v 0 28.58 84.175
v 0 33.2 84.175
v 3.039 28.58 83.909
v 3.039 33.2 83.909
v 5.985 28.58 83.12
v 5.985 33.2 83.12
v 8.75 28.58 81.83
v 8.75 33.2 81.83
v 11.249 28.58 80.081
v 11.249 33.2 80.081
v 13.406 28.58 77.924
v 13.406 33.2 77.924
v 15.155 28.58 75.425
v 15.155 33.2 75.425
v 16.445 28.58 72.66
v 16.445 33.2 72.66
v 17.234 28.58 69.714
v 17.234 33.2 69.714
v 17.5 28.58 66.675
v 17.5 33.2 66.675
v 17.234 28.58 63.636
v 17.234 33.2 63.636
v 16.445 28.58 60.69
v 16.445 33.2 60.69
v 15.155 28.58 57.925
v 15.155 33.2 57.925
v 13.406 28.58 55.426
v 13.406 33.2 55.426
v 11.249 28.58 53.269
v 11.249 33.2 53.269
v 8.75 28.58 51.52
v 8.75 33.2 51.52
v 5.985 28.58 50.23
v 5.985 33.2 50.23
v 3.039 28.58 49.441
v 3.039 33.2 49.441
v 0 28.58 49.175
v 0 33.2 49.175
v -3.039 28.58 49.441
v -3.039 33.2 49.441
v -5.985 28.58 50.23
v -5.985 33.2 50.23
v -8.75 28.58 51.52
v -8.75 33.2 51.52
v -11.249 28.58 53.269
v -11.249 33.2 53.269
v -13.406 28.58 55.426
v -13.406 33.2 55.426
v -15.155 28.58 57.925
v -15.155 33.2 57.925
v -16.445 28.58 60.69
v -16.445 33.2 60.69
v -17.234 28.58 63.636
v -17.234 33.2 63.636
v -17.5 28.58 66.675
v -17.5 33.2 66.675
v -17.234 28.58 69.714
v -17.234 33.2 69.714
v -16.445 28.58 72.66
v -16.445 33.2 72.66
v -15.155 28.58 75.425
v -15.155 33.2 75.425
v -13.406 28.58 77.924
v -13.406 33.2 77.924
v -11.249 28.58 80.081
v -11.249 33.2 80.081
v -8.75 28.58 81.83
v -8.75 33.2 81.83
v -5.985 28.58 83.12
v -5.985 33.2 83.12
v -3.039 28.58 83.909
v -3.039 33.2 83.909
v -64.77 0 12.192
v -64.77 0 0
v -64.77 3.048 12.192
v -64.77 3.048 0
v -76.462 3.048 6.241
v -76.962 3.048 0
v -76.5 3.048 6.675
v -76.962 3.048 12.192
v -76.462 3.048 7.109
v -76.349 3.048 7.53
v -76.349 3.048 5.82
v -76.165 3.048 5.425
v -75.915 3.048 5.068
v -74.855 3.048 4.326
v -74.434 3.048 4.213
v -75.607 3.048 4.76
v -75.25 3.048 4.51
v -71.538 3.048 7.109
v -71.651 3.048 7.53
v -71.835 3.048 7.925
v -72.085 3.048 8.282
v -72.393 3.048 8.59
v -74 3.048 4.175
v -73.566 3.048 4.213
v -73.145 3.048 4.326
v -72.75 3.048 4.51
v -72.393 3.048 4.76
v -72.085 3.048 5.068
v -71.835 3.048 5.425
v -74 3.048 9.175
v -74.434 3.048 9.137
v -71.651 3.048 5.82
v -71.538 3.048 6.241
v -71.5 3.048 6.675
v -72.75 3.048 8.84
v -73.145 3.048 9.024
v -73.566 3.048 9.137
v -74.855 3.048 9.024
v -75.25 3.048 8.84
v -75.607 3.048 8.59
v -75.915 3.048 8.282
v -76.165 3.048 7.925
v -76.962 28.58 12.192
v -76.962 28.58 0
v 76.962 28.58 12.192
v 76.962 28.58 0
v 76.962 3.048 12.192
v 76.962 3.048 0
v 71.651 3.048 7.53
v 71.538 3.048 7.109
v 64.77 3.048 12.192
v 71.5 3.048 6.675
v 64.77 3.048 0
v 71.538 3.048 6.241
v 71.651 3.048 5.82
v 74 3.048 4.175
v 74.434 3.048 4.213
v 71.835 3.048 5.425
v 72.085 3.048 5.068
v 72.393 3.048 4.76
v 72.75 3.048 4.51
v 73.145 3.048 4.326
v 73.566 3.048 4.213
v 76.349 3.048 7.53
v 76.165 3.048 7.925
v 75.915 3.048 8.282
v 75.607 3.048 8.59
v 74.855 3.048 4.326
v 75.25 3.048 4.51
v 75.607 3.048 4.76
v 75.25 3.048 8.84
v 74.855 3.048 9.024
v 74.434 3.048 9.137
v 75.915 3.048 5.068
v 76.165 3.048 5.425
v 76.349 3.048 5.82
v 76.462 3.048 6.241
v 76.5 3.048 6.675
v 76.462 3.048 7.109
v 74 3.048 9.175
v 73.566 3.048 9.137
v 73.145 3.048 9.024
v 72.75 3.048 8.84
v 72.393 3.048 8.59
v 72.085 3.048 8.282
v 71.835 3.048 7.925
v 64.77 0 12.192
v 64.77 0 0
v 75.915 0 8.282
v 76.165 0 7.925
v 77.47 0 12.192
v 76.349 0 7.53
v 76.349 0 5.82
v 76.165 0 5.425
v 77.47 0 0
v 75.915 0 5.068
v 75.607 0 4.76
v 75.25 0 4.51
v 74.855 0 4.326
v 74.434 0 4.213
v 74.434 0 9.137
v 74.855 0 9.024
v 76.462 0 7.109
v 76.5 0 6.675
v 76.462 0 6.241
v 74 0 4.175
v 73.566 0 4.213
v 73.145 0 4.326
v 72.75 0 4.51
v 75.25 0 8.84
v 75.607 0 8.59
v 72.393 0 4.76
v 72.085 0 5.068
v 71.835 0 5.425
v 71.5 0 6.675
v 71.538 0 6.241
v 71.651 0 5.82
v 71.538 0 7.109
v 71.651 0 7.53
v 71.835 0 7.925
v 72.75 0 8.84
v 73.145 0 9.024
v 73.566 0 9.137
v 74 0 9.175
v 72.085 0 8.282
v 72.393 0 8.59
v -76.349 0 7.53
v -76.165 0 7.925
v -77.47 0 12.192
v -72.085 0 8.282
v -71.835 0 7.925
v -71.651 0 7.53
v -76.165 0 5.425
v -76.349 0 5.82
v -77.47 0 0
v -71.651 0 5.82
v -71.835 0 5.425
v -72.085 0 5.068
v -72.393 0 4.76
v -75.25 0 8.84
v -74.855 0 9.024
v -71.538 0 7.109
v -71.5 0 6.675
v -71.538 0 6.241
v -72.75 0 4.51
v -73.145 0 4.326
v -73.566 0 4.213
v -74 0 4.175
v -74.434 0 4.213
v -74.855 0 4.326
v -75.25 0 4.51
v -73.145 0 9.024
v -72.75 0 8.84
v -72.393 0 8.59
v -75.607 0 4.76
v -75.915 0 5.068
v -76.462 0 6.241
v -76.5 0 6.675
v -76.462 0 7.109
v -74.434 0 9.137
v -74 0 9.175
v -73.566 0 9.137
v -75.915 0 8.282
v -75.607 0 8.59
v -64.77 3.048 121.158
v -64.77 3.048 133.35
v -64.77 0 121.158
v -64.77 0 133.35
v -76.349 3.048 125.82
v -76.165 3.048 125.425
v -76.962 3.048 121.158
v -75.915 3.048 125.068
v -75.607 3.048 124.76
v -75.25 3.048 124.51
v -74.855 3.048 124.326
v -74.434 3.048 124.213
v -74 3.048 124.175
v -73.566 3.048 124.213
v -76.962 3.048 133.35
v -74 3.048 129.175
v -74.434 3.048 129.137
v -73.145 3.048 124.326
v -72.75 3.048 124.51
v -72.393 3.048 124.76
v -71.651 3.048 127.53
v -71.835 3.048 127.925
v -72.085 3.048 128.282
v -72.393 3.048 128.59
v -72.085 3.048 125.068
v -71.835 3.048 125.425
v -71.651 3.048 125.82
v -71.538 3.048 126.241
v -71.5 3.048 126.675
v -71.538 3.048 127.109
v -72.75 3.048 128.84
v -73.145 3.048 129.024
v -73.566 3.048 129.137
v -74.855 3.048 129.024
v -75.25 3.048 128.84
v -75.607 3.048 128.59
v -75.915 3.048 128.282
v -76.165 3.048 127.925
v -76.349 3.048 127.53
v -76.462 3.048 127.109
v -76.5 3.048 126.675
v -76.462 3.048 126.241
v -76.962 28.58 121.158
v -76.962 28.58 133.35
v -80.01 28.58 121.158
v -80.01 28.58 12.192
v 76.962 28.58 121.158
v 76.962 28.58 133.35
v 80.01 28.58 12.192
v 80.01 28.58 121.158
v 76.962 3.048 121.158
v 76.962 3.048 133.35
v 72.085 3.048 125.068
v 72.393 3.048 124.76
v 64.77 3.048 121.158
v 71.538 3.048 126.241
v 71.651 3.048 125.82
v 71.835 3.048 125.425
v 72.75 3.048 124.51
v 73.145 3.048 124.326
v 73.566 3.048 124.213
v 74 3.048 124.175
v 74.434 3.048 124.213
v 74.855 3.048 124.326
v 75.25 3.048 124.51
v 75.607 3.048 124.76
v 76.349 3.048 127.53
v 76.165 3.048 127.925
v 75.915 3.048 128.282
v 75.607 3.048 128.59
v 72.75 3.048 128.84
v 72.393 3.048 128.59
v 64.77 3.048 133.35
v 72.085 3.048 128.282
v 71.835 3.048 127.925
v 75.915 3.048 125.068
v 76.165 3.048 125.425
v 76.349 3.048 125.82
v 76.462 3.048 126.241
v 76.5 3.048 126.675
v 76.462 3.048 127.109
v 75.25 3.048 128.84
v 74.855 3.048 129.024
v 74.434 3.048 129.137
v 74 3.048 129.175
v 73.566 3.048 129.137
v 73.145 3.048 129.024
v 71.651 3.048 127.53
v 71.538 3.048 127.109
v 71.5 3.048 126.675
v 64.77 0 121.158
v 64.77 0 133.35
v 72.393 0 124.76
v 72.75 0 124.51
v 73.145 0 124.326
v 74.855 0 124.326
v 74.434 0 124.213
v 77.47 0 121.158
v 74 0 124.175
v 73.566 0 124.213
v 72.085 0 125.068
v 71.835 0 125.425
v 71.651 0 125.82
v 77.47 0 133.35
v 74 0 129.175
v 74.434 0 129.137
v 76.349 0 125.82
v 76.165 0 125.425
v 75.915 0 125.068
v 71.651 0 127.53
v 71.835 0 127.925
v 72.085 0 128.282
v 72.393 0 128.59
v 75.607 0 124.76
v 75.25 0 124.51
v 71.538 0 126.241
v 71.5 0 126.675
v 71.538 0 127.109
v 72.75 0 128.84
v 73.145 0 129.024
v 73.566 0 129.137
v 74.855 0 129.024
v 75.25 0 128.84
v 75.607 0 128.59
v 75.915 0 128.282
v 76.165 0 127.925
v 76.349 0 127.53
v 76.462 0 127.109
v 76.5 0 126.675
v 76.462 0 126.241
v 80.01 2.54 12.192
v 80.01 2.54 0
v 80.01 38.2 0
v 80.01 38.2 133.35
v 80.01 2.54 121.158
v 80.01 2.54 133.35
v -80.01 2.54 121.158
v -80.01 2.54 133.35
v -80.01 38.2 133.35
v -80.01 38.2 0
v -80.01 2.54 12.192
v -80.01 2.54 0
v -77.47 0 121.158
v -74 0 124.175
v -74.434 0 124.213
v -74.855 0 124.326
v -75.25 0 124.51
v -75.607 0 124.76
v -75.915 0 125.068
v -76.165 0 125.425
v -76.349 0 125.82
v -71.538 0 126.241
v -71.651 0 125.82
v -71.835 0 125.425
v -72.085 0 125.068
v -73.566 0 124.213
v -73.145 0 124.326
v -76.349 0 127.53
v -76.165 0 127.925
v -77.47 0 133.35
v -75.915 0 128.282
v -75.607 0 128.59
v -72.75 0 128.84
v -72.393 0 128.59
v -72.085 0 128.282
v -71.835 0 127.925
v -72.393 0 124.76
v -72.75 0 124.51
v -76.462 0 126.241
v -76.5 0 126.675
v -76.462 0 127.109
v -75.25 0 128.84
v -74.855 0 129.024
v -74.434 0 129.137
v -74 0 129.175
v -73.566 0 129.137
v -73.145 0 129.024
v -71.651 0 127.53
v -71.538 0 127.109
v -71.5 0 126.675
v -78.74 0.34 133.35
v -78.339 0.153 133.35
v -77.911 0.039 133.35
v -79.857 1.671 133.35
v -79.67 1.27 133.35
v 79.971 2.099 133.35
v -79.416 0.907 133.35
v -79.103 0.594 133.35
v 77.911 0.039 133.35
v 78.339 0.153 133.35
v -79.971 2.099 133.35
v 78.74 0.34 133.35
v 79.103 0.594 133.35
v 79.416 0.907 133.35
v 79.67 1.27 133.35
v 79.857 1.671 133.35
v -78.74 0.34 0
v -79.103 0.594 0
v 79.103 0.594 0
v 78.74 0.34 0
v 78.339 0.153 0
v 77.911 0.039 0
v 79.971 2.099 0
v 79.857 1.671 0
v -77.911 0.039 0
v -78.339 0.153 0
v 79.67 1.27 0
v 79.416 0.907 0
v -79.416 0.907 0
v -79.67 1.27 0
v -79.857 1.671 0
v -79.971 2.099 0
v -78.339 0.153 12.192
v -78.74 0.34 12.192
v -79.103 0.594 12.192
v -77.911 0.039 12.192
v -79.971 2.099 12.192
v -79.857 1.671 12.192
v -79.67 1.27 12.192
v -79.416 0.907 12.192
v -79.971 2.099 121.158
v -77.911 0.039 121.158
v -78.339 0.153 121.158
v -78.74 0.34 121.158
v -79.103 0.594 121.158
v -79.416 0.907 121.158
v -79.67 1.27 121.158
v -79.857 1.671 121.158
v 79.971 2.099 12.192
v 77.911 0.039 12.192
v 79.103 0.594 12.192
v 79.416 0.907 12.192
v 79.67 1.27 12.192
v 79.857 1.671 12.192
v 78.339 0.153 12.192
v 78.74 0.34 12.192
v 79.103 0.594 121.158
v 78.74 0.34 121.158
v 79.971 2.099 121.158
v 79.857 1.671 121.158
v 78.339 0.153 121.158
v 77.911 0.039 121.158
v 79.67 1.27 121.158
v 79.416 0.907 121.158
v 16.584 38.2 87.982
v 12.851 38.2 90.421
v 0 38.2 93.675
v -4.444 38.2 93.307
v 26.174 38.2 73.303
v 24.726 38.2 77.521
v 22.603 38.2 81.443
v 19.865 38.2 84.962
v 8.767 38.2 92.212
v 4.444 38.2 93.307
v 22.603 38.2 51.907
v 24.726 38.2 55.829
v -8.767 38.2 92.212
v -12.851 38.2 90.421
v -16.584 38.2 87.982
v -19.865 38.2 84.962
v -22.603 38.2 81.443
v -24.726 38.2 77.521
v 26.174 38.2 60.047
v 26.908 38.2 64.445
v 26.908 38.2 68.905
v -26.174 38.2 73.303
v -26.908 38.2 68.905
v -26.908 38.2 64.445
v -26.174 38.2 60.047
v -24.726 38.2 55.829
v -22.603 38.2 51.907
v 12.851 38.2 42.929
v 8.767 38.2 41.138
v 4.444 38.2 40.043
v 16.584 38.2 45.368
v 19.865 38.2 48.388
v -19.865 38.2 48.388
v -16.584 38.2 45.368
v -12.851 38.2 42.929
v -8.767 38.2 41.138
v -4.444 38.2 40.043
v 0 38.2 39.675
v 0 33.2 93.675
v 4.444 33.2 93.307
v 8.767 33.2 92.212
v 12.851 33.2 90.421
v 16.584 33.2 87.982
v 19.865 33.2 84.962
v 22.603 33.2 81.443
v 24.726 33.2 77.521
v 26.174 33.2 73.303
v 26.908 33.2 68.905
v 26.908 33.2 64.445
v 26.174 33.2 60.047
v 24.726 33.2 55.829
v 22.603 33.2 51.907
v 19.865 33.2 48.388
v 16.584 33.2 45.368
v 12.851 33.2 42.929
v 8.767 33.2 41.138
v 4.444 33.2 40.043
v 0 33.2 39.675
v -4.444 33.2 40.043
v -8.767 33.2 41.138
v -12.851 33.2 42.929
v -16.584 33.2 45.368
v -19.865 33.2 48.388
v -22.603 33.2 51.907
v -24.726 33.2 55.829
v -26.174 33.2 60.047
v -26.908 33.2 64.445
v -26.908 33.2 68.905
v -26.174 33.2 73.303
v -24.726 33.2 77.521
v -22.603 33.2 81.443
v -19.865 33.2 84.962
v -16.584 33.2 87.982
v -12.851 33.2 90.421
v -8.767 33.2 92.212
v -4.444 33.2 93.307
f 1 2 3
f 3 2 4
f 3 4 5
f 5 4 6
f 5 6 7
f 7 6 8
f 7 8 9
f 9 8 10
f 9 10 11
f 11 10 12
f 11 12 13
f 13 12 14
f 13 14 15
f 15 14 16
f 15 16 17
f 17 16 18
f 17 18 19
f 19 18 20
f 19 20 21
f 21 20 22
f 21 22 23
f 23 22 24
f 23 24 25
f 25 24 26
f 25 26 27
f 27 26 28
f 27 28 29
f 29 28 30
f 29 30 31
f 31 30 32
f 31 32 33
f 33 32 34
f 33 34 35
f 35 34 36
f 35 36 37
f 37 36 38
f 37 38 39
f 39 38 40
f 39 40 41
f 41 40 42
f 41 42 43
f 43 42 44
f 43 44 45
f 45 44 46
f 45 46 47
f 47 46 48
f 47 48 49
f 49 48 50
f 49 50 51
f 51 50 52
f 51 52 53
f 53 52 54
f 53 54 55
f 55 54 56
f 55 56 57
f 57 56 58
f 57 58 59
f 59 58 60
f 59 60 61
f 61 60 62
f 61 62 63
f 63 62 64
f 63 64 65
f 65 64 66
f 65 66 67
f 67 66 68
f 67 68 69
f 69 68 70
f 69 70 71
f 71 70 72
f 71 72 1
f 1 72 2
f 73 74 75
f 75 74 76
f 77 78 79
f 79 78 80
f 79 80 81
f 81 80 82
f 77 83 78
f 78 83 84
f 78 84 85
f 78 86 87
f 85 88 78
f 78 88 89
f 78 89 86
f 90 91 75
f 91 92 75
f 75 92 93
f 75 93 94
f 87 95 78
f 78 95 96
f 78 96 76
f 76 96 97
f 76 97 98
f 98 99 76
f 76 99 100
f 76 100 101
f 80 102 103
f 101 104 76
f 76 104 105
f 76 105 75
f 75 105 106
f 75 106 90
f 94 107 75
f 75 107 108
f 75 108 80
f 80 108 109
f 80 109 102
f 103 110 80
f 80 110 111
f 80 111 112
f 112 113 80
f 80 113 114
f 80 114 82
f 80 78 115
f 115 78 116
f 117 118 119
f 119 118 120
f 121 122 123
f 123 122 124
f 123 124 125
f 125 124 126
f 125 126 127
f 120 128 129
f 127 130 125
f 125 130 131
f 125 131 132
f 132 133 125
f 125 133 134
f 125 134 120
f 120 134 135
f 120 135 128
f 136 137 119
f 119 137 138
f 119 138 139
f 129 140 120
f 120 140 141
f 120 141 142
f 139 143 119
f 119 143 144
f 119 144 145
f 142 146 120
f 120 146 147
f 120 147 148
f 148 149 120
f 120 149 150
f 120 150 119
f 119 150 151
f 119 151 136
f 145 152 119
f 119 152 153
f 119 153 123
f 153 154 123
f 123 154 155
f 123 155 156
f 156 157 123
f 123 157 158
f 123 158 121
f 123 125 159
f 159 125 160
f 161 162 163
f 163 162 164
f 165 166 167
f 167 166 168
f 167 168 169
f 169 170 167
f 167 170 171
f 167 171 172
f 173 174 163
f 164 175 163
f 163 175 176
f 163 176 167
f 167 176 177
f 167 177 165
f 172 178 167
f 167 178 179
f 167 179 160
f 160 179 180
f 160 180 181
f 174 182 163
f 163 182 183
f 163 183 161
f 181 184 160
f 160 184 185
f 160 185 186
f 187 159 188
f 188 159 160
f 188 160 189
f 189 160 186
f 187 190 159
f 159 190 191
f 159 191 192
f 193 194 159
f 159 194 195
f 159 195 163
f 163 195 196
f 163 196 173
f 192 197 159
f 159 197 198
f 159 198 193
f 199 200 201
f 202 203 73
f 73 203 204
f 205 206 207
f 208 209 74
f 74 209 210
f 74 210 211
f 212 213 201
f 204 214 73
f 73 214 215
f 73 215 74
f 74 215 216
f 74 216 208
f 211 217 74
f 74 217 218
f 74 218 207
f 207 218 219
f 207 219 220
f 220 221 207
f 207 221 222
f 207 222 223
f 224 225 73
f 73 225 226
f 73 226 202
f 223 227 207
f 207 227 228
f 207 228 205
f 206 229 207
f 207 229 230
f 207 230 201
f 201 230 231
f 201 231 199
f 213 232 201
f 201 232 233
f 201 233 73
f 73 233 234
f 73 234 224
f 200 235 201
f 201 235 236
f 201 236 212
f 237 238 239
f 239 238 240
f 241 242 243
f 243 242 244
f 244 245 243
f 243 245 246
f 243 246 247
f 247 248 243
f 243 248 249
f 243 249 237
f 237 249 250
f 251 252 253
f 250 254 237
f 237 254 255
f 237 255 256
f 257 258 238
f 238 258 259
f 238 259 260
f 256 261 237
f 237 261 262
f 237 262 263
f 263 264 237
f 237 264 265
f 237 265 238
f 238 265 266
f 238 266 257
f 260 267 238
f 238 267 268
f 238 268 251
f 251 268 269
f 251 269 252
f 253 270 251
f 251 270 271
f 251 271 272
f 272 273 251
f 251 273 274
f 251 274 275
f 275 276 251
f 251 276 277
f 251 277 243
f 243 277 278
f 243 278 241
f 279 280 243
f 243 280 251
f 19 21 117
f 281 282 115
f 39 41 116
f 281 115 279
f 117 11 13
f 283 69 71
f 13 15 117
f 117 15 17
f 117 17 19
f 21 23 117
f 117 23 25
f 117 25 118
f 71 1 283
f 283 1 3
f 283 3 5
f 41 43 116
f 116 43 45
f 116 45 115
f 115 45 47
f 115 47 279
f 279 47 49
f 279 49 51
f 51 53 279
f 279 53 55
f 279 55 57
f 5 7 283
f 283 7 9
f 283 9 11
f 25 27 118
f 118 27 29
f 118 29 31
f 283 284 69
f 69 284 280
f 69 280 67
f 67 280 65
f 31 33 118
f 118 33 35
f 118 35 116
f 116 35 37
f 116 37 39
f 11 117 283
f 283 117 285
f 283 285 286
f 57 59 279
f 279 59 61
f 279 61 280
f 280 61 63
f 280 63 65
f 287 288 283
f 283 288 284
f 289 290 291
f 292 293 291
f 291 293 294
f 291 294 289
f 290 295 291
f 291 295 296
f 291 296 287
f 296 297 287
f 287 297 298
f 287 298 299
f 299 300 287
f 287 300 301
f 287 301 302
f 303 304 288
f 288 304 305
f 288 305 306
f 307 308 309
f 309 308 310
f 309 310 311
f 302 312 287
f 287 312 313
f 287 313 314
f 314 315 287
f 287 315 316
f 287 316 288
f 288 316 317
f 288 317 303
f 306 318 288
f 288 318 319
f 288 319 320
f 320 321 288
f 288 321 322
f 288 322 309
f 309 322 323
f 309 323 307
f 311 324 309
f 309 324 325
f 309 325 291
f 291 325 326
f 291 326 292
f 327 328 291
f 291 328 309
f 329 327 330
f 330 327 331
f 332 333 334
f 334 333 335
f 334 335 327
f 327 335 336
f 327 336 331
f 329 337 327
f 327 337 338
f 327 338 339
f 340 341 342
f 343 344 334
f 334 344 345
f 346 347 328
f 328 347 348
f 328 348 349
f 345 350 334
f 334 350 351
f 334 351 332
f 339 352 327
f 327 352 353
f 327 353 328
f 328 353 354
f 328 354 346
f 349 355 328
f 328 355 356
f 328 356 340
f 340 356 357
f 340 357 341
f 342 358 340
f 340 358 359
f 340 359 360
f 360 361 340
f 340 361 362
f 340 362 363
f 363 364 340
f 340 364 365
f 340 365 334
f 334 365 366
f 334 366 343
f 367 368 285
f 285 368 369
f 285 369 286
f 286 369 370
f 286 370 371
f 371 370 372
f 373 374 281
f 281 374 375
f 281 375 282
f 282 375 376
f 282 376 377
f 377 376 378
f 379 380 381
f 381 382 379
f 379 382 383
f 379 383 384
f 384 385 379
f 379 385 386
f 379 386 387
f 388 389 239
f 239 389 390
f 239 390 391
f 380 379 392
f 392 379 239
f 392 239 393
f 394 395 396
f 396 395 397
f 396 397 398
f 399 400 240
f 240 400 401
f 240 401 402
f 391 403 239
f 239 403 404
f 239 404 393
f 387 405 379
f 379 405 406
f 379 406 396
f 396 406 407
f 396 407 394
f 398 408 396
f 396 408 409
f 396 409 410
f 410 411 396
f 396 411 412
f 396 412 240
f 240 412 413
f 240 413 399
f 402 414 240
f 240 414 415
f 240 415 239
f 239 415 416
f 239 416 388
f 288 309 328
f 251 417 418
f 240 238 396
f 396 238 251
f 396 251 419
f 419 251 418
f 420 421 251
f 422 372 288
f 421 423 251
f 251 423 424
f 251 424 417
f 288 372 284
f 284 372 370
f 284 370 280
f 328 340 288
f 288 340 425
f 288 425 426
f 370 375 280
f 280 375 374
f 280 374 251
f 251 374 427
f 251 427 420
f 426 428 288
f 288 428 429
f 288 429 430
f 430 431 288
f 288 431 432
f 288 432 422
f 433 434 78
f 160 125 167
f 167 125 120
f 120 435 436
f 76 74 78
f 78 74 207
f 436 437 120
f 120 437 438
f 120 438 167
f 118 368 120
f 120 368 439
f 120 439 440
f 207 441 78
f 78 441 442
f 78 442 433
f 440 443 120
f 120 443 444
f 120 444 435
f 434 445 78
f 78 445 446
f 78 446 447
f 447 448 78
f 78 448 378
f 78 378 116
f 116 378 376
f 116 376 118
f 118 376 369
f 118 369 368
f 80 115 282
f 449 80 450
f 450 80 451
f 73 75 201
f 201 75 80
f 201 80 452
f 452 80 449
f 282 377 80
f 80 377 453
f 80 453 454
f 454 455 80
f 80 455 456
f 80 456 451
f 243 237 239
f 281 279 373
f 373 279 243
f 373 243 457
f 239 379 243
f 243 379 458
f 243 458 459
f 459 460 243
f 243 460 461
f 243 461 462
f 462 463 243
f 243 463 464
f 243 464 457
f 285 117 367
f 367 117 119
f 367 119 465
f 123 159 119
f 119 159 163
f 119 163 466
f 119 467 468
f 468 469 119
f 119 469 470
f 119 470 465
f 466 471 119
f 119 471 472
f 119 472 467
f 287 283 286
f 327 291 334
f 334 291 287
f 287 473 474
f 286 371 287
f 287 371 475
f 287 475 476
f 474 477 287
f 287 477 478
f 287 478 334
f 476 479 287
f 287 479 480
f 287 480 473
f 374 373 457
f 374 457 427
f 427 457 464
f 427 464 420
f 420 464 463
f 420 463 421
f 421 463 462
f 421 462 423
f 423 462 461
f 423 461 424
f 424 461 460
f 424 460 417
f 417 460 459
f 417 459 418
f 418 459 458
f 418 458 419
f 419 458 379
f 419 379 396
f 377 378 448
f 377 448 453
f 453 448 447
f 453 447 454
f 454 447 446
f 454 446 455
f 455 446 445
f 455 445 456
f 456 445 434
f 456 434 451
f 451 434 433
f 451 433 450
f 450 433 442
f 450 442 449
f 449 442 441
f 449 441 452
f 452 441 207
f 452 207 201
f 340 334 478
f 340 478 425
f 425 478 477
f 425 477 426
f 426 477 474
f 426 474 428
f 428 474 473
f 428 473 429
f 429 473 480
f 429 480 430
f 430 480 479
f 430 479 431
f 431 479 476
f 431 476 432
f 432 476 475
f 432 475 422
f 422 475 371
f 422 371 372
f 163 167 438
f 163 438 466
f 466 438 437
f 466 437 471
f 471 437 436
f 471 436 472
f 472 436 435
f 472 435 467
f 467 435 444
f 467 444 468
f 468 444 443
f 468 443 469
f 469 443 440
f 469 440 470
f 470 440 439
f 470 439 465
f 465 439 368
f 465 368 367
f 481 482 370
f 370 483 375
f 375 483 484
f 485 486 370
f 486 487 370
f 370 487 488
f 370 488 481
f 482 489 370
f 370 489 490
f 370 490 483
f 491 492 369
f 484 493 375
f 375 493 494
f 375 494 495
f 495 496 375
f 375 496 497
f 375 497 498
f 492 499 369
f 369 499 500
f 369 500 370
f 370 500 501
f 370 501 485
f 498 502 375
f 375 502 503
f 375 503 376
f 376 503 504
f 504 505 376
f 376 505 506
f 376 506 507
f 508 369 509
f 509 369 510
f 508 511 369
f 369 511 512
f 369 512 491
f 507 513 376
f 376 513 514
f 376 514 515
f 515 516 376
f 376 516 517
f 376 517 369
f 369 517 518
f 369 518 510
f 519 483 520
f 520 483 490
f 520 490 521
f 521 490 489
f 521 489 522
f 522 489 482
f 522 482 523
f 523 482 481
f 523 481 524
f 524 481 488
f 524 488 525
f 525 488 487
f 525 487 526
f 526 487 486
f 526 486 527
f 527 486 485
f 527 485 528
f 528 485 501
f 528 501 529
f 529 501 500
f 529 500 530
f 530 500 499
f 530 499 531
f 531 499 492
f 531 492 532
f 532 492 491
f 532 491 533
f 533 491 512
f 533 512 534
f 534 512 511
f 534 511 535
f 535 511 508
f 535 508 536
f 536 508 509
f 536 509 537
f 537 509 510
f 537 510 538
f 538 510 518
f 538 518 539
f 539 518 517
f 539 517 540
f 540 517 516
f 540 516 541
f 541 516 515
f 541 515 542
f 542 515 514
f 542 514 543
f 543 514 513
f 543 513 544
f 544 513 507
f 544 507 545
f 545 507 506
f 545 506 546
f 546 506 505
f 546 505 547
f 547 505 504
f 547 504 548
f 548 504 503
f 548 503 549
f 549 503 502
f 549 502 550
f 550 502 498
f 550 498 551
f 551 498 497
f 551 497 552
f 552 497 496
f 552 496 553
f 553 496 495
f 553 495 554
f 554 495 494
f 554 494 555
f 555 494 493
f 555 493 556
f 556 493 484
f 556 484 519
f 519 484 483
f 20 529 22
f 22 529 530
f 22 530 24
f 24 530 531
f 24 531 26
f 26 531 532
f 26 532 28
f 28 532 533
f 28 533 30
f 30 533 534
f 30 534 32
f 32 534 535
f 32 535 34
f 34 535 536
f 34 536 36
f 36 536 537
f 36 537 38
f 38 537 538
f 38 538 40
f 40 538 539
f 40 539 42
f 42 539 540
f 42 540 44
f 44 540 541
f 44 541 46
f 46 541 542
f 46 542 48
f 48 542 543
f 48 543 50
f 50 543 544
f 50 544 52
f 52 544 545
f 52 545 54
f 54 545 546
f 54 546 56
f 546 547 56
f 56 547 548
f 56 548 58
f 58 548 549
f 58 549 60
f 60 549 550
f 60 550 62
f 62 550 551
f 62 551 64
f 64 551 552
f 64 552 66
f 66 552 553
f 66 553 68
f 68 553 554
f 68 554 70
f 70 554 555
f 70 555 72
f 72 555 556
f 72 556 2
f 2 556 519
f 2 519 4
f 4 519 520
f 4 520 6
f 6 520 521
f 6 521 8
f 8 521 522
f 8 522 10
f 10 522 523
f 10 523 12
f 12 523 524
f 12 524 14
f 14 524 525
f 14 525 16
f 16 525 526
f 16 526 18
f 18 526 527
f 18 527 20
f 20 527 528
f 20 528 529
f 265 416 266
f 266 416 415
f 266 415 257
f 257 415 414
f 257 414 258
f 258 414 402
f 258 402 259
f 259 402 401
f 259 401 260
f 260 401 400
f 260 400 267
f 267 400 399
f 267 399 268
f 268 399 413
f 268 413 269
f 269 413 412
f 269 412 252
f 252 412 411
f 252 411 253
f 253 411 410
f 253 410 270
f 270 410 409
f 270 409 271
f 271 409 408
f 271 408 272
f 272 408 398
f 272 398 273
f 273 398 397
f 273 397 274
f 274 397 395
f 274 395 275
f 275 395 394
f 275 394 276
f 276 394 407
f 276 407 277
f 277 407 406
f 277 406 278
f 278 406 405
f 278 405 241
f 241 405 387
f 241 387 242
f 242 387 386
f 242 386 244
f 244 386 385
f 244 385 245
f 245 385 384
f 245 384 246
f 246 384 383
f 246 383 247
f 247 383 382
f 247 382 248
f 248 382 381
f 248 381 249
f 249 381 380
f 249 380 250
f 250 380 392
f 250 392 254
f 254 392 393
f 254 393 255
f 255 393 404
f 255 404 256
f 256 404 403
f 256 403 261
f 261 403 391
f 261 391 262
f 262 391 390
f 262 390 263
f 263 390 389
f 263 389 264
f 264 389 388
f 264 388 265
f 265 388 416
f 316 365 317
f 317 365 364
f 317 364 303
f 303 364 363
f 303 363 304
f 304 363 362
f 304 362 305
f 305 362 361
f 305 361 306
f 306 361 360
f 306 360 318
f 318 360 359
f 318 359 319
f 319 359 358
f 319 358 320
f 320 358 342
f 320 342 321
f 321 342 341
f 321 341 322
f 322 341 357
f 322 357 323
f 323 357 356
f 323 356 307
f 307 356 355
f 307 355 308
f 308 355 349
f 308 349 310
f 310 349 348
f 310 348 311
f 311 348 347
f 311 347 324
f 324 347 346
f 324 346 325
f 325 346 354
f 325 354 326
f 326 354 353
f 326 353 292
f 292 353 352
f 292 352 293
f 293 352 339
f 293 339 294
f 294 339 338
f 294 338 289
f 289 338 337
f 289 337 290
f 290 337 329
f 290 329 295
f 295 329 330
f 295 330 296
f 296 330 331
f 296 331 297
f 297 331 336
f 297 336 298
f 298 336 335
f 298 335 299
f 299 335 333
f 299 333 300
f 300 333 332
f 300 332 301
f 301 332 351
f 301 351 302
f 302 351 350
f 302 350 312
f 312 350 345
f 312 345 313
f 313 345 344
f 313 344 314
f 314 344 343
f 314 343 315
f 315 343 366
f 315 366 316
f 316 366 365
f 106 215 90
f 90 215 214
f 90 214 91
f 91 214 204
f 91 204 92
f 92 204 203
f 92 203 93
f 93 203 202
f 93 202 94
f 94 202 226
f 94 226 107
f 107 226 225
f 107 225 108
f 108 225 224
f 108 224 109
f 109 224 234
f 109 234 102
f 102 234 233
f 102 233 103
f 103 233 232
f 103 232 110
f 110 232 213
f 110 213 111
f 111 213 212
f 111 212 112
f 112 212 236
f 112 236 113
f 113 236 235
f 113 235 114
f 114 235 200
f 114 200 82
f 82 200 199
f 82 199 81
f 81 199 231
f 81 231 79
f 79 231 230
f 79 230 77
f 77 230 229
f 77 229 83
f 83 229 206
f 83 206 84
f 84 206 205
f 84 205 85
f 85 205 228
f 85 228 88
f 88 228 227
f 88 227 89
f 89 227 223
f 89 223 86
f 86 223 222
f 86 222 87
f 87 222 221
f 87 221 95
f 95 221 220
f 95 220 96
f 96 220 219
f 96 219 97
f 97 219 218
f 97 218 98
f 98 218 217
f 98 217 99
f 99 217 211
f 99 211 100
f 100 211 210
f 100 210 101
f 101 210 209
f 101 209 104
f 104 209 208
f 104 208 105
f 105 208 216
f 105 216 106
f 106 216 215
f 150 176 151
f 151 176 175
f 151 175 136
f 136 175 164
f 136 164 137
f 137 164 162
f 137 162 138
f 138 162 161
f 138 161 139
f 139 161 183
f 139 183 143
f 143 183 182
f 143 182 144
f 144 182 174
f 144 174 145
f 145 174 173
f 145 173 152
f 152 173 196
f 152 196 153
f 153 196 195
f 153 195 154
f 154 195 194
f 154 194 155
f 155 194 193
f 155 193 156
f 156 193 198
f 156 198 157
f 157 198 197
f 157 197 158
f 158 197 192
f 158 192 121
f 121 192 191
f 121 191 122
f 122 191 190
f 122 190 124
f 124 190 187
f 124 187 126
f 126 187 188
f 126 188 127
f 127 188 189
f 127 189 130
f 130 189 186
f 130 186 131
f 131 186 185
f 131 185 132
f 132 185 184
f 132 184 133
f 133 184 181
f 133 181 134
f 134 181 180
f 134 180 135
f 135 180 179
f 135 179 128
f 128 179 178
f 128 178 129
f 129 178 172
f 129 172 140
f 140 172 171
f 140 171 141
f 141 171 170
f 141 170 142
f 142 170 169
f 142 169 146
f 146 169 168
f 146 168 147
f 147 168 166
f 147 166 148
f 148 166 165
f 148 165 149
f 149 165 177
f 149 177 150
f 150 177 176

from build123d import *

# Parameters (mm, degrees)
BOSS_EXTRU_1_DEPTH      = 133.35
ESQUISSE3_W             = 108.966
ESQUISSE3_H             = 28.58
ENL_V_MAT_EXTRU_1_DEPTH = 212.421528942
CONG_1_R                = 2.54
SKETCH1_W               = 160.02
SKETCH1_H               = 133.35
BOSS_EXTRUDE1_DEPTH     = 2
SKETCH2_R               = 17.5
CUT_EXTRUDE1_DEPTH      = 161.134514081
SKETCH2_3_R             = 27
SKETCH2_3_R_2           = 17.5
CUT_EXTRUDE2_DEPTH      = 5
SKETCH3_R               = 2.5
CUT_EXTRUDE3_DEPTH      = 5


with BuildPart() as part:
    # Esquisse2 → Boss.-Extru.1 (new body)
    with BuildSketch(Plane.XY):
        Polygon((-64.77, 0), (-80.01, 0), (-80.01, 36.2), (80.01, 36.2), (80.01, 0), (64.77, 0), (64.77, 3.048), (76.962, 3.048), (76.962, 28.58), (-76.962, 28.58), (-76.962, 3.048), (-64.77, 3.048), align=None)
    extrude(amount=BOSS_EXTRU_1_DEPTH)

    # Esquisse3 → Enlèv. mat.-Extru.1 (cut, through all)
    with BuildSketch(Plane.ZY.offset(80.01)):
        with Locations((66.675, 14.29)):
            Rectangle(ESQUISSE3_W, ESQUISSE3_H)
    extrude(amount=-ENL_V_MAT_EXTRU_1_DEPTH, mode=Mode.SUBTRACT)

    # Congé1
    cong_1_edges = [part.edges().sort_by_distance(p)[0] for p in [
        (-80.01, 0, 127.254),
        (-80.01, 0, 6.096),
        (80.01, 0, 127.254),
        (80.01, 0, 6.096),
    ]]
    fillet(cong_1_edges, radius=CONG_1_R)

    # Sketch1 → Boss-Extrude1 (add)
    with BuildSketch(Plane(origin=(0, 36.2, 0), x_dir=(1, 0, 0), z_dir=(0, 1, 0))):
        with Locations((0, -66.675)):
            Rectangle(SKETCH1_W, SKETCH1_H)
    extrude(amount=BOSS_EXTRUDE1_DEPTH)

    # Sketch2 → Cut-Extrude1 (cut, through all)
    with BuildSketch(Plane(origin=(0, 38.2, 0), x_dir=(1, 0, 0), z_dir=(0, 1, 0))):
        with Locations((0, -66.675)):
            Circle(SKETCH2_R)
    extrude(amount=-CUT_EXTRUDE1_DEPTH, mode=Mode.SUBTRACT)

    # Sketch2<3> → Cut-Extrude2 (cut)
    with BuildSketch(Plane(origin=(0, 38.2, 0), x_dir=(1, 0, 0), z_dir=(0, 1, 0))):
        with Locations((0, -66.675)):
            Circle(SKETCH2_3_R)
        with Locations((0, -66.675)):
            Circle(SKETCH2_3_R_2, mode=Mode.SUBTRACT)
    extrude(amount=-CUT_EXTRUDE2_DEPTH, mode=Mode.SUBTRACT)

    # Sketch3 → Cut-Extrude3 (cut)
    with BuildSketch(Plane.XZ):
        with Locations((-74, 126.675)):
            Circle(SKETCH3_R)
        with Locations((74, 126.675)):
            Circle(SKETCH3_R)
        with Locations((74, 6.675)):
            Circle(SKETCH3_R)
        with Locations((-74, 6.675)):
            Circle(SKETCH3_R)
    extrude(amount=-CUT_EXTRUDE3_DEPTH, mode=Mode.SUBTRACT)


solid = part.part
